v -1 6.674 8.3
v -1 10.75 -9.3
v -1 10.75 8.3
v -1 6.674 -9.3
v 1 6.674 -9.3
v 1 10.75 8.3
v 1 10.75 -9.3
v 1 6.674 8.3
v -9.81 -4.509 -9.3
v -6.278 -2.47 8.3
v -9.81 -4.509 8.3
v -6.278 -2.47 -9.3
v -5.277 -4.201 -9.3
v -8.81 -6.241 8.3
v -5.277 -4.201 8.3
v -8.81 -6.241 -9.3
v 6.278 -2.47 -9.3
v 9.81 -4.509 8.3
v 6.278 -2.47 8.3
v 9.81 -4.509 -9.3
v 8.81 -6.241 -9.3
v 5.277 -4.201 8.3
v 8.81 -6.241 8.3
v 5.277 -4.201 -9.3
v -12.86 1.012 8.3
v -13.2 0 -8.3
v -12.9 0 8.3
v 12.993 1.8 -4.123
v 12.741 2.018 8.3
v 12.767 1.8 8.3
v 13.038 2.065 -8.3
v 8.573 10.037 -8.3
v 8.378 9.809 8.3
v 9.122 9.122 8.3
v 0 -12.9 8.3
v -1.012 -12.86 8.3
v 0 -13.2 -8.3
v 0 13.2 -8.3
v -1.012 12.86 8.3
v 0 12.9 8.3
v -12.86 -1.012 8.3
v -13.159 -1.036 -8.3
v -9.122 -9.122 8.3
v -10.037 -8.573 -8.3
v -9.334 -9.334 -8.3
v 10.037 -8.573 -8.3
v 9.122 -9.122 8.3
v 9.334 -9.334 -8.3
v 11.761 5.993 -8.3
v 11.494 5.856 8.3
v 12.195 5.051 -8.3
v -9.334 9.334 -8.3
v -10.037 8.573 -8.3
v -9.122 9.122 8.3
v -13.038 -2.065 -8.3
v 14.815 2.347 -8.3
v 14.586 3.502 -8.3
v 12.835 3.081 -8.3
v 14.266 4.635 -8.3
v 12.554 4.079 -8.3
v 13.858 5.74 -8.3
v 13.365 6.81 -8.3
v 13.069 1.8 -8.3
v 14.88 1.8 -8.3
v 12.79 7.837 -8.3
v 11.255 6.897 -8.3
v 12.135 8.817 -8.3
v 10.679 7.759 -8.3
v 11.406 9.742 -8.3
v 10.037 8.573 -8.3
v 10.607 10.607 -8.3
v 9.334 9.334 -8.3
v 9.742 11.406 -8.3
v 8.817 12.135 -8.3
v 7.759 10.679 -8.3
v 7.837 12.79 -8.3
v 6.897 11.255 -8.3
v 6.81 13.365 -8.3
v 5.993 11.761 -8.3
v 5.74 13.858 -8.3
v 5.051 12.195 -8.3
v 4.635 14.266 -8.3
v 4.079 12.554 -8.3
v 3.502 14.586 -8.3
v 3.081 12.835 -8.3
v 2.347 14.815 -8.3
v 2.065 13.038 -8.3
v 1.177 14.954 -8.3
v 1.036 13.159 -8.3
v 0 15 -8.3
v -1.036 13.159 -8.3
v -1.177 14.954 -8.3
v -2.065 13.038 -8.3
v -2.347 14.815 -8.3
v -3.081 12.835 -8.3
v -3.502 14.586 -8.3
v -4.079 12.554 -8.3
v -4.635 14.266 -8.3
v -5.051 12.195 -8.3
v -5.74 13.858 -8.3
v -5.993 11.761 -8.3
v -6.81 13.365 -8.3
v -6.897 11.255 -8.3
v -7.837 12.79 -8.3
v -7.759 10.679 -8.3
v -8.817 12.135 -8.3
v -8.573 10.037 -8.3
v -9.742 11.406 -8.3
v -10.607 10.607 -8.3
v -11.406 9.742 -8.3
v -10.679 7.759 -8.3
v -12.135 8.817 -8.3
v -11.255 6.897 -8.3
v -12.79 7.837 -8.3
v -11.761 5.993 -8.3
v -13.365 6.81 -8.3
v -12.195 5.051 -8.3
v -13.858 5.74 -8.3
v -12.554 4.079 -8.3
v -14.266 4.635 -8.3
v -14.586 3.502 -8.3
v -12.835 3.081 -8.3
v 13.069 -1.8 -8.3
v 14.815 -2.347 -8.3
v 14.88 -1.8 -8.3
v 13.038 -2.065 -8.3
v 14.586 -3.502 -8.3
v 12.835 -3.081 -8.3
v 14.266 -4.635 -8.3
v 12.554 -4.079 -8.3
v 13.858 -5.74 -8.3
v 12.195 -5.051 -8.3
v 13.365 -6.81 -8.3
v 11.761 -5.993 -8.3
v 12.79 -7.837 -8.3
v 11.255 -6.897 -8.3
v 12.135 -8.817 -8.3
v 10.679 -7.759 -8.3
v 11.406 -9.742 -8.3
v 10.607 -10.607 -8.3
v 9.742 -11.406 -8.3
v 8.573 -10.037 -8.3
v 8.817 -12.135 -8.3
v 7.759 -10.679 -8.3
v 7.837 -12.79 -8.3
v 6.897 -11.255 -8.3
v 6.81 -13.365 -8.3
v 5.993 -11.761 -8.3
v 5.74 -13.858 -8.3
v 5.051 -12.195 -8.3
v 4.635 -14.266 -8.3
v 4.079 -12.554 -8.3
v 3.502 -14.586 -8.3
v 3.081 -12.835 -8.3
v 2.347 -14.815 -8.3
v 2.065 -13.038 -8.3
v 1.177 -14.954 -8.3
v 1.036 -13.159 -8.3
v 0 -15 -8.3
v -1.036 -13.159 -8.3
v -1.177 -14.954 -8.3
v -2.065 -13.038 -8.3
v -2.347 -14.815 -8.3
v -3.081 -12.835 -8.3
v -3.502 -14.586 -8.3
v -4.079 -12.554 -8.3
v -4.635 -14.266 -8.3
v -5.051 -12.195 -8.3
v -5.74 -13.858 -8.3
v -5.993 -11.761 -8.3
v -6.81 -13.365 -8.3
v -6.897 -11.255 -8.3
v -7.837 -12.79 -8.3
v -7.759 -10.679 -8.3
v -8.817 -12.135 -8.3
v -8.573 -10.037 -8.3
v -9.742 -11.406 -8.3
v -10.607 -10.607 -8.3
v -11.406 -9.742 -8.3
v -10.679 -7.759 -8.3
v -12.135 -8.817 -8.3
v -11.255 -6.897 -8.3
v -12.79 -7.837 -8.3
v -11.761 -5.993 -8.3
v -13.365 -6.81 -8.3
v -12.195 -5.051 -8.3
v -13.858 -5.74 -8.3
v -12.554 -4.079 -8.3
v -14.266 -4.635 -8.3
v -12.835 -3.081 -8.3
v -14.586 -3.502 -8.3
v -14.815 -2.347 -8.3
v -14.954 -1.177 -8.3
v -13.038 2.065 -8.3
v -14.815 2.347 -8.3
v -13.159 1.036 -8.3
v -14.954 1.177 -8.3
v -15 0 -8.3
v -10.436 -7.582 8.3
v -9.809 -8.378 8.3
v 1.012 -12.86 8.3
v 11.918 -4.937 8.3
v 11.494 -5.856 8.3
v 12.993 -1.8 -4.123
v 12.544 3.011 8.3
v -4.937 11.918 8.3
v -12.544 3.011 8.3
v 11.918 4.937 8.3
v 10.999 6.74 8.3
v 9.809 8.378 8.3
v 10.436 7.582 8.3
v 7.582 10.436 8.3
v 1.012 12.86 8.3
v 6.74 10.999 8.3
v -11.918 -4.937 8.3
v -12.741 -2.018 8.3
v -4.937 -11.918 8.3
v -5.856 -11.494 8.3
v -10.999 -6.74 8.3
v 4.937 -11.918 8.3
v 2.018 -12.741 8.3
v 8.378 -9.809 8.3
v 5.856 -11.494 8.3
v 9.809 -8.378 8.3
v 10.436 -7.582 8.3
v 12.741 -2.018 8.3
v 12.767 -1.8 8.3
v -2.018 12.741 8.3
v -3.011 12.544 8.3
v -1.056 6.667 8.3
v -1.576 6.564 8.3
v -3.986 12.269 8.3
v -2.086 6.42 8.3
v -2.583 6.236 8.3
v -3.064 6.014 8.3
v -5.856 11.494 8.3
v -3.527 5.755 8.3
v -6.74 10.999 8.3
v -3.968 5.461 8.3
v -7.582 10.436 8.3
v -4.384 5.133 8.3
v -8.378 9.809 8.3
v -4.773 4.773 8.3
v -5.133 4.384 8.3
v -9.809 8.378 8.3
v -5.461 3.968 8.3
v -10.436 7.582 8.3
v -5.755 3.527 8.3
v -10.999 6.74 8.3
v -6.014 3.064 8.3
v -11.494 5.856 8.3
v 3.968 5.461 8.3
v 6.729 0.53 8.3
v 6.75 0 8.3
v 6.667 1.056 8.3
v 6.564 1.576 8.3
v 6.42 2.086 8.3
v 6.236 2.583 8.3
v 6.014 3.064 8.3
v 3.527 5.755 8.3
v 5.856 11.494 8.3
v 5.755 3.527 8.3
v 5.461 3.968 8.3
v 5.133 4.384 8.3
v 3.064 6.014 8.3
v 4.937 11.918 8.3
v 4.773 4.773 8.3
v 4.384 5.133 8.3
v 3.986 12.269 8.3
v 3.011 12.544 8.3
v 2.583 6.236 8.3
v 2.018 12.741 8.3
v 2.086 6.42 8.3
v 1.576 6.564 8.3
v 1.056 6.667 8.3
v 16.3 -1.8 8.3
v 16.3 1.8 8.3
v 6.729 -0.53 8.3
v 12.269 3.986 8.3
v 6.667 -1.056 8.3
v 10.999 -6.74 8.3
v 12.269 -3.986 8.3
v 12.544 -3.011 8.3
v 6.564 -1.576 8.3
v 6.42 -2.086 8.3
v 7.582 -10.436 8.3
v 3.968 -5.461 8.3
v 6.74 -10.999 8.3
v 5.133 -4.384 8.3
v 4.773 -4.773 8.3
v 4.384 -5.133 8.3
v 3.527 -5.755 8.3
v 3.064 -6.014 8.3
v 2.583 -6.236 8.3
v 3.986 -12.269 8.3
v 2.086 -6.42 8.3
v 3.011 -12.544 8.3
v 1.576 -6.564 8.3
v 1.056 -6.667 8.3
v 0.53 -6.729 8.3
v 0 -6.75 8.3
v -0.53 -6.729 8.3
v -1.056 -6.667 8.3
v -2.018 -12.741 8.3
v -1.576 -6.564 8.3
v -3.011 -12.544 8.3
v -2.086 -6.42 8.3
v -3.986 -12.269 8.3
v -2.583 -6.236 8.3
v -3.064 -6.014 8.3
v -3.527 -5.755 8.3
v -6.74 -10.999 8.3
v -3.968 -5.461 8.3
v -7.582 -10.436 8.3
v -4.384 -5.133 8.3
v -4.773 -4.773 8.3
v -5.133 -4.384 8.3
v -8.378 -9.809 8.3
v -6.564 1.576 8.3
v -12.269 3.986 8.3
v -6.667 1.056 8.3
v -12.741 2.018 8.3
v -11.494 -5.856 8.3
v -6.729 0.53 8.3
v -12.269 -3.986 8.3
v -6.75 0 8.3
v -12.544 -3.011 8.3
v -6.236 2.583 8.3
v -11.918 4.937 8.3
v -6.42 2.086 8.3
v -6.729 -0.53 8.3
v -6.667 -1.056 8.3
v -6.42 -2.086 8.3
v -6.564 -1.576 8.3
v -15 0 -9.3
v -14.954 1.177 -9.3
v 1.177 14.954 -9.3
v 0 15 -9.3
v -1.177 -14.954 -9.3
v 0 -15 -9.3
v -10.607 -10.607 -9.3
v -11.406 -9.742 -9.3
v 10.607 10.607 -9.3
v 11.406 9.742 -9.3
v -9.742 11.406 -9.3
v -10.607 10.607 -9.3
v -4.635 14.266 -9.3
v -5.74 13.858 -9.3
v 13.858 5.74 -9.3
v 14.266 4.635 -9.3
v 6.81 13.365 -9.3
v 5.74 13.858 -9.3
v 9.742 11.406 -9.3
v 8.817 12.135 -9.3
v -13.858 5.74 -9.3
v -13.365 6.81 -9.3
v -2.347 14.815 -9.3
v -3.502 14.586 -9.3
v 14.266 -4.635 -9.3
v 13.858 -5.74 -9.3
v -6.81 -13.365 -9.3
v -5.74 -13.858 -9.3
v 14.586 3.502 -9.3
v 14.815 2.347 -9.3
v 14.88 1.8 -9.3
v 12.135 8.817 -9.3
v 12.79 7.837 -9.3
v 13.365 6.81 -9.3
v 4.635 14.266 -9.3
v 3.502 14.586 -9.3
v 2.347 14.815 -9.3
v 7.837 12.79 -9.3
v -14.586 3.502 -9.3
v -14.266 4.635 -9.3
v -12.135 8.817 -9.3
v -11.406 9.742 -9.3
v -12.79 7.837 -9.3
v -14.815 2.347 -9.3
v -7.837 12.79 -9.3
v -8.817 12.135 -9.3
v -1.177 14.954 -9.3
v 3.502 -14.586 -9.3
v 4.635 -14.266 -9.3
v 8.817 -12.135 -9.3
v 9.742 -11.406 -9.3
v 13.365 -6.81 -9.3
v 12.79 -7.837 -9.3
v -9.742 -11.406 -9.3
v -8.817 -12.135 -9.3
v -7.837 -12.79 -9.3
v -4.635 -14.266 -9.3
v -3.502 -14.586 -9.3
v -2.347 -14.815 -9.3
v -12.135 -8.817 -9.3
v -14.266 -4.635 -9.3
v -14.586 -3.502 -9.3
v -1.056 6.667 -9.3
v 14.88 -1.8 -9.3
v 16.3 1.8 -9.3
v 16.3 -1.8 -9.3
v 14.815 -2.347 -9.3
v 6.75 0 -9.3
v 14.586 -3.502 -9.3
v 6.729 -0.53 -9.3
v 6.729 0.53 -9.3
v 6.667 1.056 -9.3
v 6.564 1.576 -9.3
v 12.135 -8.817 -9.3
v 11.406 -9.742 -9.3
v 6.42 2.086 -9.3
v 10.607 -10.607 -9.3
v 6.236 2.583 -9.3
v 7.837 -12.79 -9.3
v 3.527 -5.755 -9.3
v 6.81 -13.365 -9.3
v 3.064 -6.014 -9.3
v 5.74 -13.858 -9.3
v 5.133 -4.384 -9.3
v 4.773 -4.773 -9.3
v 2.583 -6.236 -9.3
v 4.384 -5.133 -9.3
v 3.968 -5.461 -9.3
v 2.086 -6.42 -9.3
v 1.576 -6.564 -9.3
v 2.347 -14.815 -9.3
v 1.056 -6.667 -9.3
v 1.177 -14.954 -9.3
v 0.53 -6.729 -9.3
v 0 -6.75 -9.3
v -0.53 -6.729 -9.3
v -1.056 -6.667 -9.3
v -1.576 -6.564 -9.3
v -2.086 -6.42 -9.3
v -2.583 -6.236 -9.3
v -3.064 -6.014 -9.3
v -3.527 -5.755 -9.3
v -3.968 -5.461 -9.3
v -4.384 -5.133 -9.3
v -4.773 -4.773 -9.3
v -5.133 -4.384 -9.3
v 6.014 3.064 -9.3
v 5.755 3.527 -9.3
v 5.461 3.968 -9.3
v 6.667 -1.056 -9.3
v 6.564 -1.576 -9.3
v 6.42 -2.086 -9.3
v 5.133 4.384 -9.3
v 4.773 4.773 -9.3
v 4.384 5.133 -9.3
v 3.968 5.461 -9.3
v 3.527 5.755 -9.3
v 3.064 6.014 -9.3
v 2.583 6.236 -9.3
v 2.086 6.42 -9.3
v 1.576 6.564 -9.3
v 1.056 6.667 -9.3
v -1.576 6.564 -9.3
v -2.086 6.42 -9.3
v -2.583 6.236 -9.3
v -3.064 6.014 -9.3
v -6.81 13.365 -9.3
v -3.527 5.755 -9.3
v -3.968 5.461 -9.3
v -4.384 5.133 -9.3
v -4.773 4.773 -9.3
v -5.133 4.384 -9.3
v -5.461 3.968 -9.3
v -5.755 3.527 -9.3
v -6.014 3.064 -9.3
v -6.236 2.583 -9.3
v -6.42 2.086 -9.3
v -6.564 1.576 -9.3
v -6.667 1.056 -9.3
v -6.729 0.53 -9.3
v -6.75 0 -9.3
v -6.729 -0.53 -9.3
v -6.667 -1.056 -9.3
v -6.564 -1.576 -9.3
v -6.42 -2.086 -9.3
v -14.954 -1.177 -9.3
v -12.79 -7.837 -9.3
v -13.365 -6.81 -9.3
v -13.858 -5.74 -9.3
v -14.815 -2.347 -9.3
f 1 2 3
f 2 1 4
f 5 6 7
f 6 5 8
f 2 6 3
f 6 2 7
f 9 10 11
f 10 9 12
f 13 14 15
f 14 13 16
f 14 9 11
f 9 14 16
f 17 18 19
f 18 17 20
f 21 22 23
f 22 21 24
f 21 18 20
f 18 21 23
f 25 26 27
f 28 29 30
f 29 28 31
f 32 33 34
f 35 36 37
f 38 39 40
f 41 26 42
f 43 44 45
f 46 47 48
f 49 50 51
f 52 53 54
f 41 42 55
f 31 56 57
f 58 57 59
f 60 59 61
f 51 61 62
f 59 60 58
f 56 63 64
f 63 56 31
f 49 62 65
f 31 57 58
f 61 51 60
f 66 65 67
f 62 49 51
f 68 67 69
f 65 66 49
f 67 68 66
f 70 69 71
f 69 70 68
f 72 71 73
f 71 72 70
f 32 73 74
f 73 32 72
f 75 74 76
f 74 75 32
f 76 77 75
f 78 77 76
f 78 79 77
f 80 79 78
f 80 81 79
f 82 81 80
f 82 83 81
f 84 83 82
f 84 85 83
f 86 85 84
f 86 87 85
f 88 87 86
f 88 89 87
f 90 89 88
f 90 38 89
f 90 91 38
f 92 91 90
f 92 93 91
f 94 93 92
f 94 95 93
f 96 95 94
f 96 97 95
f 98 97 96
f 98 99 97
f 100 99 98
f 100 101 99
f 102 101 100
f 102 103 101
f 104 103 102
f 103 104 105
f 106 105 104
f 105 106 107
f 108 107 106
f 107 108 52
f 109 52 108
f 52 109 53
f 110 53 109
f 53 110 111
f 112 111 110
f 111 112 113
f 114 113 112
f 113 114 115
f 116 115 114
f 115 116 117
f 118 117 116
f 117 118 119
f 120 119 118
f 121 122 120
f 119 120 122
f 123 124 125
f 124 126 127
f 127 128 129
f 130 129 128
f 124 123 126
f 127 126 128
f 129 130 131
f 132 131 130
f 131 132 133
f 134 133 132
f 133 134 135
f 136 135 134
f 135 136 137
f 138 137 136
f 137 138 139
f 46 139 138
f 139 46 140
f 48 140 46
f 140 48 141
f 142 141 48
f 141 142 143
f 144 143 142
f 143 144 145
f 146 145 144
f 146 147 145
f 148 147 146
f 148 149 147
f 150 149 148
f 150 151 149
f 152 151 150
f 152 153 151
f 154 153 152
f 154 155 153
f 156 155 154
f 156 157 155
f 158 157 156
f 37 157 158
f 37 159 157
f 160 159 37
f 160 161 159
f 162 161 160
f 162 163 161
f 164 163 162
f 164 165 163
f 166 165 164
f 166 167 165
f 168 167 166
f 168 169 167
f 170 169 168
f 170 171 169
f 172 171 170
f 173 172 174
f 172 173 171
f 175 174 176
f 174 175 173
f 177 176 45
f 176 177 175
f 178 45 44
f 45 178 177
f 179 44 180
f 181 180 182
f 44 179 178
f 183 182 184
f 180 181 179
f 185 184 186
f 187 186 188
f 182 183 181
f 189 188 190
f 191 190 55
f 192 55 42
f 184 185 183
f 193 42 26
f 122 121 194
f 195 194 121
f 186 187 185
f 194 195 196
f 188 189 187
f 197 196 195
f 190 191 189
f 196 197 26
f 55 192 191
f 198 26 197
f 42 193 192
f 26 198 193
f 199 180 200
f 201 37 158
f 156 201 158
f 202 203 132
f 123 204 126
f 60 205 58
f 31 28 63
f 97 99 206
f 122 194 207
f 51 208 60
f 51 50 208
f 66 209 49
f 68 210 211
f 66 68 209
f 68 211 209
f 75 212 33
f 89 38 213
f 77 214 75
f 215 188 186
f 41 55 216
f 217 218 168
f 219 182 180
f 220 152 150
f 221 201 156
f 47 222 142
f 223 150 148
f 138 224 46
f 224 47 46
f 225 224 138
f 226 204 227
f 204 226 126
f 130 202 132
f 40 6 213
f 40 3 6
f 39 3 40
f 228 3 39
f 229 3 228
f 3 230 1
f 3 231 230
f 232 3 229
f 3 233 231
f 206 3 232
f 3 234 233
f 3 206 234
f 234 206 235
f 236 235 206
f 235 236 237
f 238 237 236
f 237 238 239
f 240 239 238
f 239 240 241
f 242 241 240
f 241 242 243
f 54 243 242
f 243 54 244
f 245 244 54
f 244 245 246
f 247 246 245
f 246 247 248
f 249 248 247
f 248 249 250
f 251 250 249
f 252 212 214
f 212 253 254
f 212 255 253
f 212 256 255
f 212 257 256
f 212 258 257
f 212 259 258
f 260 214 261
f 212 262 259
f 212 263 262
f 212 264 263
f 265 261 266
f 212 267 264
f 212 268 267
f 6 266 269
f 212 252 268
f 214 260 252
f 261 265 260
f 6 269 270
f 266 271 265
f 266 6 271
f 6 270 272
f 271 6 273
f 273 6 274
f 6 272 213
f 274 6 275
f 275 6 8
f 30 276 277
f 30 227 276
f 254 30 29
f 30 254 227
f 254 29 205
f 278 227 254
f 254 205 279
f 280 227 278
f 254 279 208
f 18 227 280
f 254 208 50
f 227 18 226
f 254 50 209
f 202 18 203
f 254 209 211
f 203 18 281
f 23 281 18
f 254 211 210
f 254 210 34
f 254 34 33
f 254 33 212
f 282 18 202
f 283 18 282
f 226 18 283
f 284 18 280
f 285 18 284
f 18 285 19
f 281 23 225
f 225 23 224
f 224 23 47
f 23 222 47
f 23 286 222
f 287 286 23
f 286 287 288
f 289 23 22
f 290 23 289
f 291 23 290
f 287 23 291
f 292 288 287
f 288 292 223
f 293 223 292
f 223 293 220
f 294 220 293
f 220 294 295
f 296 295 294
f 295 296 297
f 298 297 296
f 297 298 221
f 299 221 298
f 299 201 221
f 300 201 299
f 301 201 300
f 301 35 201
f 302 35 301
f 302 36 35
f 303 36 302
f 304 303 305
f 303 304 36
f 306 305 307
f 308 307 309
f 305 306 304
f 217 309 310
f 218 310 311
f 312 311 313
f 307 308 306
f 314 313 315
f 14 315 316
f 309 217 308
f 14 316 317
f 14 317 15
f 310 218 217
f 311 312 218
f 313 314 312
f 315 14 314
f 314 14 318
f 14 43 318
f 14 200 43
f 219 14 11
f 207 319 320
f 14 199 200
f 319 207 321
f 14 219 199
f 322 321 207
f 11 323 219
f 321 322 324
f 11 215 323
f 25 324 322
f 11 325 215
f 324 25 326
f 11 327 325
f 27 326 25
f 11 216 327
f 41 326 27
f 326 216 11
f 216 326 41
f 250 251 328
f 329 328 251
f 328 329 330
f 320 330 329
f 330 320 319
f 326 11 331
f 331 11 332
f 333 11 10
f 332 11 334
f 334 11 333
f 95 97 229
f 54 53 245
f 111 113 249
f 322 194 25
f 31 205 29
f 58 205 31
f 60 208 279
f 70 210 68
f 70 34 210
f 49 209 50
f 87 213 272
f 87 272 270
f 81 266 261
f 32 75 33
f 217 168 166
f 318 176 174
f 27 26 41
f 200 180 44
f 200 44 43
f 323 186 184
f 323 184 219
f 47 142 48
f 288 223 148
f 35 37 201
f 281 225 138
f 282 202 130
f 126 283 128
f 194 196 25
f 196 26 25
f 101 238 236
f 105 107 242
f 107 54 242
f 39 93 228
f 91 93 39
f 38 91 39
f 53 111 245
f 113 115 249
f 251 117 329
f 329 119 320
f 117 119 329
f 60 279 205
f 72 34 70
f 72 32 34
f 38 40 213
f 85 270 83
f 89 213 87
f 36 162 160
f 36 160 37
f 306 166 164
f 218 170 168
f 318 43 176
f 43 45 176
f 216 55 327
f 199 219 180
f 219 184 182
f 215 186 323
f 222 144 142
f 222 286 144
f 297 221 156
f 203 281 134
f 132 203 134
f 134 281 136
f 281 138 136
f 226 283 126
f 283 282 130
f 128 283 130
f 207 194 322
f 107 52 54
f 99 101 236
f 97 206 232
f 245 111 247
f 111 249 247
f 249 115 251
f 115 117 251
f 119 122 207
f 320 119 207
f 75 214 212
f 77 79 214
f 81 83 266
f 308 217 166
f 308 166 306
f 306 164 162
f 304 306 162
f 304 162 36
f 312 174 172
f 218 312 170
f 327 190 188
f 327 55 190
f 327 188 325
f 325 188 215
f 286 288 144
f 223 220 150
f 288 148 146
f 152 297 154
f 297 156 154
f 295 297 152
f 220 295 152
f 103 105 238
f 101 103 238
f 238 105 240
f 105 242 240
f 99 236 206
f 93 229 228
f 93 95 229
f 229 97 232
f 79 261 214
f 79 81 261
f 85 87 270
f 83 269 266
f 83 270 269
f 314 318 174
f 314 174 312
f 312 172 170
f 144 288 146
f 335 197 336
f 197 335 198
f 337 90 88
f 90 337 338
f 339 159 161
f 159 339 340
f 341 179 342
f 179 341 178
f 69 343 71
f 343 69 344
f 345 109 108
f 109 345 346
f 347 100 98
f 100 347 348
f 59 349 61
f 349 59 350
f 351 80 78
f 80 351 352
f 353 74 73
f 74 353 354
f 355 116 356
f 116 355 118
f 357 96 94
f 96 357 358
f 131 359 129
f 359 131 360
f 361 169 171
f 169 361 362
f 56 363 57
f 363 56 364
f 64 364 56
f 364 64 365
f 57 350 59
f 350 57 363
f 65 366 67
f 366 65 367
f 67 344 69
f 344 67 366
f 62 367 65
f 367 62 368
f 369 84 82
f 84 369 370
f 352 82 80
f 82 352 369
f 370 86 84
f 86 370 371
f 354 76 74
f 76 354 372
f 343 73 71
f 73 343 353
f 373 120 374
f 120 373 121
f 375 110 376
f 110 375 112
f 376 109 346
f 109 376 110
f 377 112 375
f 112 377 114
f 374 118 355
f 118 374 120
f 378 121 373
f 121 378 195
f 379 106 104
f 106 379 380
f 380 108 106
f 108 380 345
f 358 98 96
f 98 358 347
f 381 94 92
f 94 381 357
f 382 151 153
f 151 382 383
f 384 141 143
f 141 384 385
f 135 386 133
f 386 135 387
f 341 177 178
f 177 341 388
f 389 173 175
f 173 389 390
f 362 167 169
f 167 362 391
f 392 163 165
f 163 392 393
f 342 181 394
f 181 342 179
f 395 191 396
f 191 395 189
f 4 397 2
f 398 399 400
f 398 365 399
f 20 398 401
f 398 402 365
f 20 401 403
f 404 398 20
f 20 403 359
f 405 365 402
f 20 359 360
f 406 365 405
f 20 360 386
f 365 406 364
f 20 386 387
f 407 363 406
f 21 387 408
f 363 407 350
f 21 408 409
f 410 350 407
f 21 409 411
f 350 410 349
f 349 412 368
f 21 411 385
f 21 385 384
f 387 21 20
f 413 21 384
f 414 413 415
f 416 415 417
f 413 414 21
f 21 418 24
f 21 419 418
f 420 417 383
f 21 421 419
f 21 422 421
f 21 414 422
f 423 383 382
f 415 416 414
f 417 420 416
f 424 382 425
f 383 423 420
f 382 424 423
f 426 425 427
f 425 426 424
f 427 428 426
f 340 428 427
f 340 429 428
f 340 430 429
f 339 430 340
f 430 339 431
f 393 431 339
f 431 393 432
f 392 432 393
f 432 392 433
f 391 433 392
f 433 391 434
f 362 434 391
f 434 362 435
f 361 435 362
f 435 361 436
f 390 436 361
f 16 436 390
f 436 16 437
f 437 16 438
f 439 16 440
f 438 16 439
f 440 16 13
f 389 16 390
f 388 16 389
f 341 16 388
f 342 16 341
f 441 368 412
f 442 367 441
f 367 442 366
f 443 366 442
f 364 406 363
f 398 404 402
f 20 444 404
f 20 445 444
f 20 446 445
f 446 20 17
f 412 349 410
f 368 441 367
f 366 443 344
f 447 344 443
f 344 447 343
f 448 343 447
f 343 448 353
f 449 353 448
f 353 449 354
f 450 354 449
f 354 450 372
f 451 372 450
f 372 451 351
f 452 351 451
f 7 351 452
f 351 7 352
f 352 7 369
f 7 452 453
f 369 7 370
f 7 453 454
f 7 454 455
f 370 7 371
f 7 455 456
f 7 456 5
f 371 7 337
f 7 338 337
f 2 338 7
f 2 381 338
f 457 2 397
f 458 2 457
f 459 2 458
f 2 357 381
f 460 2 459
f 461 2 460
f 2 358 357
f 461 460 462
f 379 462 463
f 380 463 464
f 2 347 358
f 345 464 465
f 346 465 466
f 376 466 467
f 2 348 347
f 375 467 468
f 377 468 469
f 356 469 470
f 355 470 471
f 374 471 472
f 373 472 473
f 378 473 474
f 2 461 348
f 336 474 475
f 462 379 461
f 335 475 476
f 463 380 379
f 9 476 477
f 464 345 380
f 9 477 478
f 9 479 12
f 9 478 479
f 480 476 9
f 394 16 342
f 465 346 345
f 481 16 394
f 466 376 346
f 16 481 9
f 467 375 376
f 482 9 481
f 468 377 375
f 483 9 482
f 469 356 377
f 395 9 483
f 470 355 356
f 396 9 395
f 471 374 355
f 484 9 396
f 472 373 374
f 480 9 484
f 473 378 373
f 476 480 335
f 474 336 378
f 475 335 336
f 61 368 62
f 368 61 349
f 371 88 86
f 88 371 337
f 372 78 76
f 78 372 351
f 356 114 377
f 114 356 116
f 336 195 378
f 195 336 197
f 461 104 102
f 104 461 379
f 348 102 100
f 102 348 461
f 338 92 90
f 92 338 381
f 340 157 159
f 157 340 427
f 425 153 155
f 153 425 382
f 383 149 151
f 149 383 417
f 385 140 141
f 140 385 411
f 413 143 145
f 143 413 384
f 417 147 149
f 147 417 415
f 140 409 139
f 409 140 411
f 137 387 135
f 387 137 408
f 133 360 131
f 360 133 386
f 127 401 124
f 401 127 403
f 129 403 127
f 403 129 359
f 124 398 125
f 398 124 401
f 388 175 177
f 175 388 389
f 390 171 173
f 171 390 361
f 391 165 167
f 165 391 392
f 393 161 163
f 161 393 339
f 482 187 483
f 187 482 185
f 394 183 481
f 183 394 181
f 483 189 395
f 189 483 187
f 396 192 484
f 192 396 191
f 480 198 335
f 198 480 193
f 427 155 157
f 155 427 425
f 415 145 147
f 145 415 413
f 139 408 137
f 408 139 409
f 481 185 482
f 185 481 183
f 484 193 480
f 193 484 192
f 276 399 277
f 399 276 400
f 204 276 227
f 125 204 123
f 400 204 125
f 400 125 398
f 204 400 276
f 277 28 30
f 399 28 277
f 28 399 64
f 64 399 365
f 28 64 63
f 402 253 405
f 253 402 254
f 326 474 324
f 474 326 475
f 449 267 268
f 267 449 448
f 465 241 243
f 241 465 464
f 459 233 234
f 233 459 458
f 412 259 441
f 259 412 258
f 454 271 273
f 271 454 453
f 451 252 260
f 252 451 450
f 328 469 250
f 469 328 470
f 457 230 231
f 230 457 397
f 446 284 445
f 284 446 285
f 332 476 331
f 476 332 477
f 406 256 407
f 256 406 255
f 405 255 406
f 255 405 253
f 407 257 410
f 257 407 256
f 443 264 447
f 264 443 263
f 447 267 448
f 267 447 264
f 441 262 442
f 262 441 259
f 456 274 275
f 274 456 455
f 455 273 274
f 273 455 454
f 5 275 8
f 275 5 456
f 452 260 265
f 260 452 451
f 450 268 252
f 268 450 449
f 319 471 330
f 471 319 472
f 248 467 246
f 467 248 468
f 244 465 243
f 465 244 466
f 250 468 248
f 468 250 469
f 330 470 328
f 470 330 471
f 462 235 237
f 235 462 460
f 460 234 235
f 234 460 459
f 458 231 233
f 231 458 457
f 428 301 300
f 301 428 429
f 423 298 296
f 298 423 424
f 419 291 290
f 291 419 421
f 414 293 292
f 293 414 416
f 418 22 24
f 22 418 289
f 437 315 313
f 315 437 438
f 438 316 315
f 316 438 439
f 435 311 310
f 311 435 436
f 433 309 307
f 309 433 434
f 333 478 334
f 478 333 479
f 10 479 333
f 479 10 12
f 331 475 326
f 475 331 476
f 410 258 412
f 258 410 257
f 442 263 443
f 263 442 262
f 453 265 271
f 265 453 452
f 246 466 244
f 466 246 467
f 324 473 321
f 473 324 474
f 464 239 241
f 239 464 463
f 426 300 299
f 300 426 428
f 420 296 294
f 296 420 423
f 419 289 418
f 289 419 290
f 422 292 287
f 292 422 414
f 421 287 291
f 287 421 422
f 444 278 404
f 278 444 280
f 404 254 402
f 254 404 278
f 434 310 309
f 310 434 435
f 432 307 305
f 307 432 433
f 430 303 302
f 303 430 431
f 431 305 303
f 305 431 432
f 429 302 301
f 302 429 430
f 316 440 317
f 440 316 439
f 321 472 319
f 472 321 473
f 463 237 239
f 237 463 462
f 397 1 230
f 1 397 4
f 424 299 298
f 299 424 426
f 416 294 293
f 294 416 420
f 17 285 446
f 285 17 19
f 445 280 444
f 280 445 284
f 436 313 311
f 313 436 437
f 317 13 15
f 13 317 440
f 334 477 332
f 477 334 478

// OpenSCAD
$fn = 80;
time = 0;

module reel_mount () {
	$fn = 60;
	difference(){
		translate([0, 0, -1.5]) cube([7.5, 7.5, 21.5], center= true);
		for (i = [0:4]) {
			rotate([0, 0, (i * 90)]){
				translate([(7.5 / 2) + .4, (7.5 / 2) + .4, 18.5 / 2]) rotate([0, -15, 45]) cube([2.5, 7.5, 7.5], center = true);
			}
		}		
	}
	difference () {
		union() {
			translate([0, 0, (18.5 / 2) + (3.5 / 2)]) cylinder(r = 7.5 / 2, h = 3.5, center = true);
			translate([0, 0, (18.5 / 2) + (7.5 / 2)]) sphere(7.5 / 2, center = true);
		}
		translate ([0, 0, (18.5 / 2) + 7.5]) cube([10, 10, 2], center = true);
	}

	translate([0, 0, -(18.5/ 2) - (3 / 2) - 3]) cylinder(r = 16 /2, h = 3, center = true);
}

module s8_center () {
	height = 50; //doesnt matter
	fin_w = 2;
	center_d = 13.5;
	fin_l = (center_d / 2) + 4;
	for (i = [0:2]) {
		rotate([0, 0, (i * (360/3))]){
			translate([0, fin_l/2, 0]) cube([fin_w, fin_l, height], center = true);
		}
	}
	cylinder(r = center_d/2, h = height, center = true);
}

module core_adapter () {
	difference () {
		union () {
			cylinder(r1 = 13.2, r2 = 12.9, h = 16.6, center = true);
			translate([0, 0, -8.8]) cylinder(r = 15, h = 1, center = true);
			translate([14.5, 0, -.5]) cube([3.6, 3.6, 17.6], center = true);
		}
		s8_center();
	}
}

rotate([0, 0, time]) core_adapter();
